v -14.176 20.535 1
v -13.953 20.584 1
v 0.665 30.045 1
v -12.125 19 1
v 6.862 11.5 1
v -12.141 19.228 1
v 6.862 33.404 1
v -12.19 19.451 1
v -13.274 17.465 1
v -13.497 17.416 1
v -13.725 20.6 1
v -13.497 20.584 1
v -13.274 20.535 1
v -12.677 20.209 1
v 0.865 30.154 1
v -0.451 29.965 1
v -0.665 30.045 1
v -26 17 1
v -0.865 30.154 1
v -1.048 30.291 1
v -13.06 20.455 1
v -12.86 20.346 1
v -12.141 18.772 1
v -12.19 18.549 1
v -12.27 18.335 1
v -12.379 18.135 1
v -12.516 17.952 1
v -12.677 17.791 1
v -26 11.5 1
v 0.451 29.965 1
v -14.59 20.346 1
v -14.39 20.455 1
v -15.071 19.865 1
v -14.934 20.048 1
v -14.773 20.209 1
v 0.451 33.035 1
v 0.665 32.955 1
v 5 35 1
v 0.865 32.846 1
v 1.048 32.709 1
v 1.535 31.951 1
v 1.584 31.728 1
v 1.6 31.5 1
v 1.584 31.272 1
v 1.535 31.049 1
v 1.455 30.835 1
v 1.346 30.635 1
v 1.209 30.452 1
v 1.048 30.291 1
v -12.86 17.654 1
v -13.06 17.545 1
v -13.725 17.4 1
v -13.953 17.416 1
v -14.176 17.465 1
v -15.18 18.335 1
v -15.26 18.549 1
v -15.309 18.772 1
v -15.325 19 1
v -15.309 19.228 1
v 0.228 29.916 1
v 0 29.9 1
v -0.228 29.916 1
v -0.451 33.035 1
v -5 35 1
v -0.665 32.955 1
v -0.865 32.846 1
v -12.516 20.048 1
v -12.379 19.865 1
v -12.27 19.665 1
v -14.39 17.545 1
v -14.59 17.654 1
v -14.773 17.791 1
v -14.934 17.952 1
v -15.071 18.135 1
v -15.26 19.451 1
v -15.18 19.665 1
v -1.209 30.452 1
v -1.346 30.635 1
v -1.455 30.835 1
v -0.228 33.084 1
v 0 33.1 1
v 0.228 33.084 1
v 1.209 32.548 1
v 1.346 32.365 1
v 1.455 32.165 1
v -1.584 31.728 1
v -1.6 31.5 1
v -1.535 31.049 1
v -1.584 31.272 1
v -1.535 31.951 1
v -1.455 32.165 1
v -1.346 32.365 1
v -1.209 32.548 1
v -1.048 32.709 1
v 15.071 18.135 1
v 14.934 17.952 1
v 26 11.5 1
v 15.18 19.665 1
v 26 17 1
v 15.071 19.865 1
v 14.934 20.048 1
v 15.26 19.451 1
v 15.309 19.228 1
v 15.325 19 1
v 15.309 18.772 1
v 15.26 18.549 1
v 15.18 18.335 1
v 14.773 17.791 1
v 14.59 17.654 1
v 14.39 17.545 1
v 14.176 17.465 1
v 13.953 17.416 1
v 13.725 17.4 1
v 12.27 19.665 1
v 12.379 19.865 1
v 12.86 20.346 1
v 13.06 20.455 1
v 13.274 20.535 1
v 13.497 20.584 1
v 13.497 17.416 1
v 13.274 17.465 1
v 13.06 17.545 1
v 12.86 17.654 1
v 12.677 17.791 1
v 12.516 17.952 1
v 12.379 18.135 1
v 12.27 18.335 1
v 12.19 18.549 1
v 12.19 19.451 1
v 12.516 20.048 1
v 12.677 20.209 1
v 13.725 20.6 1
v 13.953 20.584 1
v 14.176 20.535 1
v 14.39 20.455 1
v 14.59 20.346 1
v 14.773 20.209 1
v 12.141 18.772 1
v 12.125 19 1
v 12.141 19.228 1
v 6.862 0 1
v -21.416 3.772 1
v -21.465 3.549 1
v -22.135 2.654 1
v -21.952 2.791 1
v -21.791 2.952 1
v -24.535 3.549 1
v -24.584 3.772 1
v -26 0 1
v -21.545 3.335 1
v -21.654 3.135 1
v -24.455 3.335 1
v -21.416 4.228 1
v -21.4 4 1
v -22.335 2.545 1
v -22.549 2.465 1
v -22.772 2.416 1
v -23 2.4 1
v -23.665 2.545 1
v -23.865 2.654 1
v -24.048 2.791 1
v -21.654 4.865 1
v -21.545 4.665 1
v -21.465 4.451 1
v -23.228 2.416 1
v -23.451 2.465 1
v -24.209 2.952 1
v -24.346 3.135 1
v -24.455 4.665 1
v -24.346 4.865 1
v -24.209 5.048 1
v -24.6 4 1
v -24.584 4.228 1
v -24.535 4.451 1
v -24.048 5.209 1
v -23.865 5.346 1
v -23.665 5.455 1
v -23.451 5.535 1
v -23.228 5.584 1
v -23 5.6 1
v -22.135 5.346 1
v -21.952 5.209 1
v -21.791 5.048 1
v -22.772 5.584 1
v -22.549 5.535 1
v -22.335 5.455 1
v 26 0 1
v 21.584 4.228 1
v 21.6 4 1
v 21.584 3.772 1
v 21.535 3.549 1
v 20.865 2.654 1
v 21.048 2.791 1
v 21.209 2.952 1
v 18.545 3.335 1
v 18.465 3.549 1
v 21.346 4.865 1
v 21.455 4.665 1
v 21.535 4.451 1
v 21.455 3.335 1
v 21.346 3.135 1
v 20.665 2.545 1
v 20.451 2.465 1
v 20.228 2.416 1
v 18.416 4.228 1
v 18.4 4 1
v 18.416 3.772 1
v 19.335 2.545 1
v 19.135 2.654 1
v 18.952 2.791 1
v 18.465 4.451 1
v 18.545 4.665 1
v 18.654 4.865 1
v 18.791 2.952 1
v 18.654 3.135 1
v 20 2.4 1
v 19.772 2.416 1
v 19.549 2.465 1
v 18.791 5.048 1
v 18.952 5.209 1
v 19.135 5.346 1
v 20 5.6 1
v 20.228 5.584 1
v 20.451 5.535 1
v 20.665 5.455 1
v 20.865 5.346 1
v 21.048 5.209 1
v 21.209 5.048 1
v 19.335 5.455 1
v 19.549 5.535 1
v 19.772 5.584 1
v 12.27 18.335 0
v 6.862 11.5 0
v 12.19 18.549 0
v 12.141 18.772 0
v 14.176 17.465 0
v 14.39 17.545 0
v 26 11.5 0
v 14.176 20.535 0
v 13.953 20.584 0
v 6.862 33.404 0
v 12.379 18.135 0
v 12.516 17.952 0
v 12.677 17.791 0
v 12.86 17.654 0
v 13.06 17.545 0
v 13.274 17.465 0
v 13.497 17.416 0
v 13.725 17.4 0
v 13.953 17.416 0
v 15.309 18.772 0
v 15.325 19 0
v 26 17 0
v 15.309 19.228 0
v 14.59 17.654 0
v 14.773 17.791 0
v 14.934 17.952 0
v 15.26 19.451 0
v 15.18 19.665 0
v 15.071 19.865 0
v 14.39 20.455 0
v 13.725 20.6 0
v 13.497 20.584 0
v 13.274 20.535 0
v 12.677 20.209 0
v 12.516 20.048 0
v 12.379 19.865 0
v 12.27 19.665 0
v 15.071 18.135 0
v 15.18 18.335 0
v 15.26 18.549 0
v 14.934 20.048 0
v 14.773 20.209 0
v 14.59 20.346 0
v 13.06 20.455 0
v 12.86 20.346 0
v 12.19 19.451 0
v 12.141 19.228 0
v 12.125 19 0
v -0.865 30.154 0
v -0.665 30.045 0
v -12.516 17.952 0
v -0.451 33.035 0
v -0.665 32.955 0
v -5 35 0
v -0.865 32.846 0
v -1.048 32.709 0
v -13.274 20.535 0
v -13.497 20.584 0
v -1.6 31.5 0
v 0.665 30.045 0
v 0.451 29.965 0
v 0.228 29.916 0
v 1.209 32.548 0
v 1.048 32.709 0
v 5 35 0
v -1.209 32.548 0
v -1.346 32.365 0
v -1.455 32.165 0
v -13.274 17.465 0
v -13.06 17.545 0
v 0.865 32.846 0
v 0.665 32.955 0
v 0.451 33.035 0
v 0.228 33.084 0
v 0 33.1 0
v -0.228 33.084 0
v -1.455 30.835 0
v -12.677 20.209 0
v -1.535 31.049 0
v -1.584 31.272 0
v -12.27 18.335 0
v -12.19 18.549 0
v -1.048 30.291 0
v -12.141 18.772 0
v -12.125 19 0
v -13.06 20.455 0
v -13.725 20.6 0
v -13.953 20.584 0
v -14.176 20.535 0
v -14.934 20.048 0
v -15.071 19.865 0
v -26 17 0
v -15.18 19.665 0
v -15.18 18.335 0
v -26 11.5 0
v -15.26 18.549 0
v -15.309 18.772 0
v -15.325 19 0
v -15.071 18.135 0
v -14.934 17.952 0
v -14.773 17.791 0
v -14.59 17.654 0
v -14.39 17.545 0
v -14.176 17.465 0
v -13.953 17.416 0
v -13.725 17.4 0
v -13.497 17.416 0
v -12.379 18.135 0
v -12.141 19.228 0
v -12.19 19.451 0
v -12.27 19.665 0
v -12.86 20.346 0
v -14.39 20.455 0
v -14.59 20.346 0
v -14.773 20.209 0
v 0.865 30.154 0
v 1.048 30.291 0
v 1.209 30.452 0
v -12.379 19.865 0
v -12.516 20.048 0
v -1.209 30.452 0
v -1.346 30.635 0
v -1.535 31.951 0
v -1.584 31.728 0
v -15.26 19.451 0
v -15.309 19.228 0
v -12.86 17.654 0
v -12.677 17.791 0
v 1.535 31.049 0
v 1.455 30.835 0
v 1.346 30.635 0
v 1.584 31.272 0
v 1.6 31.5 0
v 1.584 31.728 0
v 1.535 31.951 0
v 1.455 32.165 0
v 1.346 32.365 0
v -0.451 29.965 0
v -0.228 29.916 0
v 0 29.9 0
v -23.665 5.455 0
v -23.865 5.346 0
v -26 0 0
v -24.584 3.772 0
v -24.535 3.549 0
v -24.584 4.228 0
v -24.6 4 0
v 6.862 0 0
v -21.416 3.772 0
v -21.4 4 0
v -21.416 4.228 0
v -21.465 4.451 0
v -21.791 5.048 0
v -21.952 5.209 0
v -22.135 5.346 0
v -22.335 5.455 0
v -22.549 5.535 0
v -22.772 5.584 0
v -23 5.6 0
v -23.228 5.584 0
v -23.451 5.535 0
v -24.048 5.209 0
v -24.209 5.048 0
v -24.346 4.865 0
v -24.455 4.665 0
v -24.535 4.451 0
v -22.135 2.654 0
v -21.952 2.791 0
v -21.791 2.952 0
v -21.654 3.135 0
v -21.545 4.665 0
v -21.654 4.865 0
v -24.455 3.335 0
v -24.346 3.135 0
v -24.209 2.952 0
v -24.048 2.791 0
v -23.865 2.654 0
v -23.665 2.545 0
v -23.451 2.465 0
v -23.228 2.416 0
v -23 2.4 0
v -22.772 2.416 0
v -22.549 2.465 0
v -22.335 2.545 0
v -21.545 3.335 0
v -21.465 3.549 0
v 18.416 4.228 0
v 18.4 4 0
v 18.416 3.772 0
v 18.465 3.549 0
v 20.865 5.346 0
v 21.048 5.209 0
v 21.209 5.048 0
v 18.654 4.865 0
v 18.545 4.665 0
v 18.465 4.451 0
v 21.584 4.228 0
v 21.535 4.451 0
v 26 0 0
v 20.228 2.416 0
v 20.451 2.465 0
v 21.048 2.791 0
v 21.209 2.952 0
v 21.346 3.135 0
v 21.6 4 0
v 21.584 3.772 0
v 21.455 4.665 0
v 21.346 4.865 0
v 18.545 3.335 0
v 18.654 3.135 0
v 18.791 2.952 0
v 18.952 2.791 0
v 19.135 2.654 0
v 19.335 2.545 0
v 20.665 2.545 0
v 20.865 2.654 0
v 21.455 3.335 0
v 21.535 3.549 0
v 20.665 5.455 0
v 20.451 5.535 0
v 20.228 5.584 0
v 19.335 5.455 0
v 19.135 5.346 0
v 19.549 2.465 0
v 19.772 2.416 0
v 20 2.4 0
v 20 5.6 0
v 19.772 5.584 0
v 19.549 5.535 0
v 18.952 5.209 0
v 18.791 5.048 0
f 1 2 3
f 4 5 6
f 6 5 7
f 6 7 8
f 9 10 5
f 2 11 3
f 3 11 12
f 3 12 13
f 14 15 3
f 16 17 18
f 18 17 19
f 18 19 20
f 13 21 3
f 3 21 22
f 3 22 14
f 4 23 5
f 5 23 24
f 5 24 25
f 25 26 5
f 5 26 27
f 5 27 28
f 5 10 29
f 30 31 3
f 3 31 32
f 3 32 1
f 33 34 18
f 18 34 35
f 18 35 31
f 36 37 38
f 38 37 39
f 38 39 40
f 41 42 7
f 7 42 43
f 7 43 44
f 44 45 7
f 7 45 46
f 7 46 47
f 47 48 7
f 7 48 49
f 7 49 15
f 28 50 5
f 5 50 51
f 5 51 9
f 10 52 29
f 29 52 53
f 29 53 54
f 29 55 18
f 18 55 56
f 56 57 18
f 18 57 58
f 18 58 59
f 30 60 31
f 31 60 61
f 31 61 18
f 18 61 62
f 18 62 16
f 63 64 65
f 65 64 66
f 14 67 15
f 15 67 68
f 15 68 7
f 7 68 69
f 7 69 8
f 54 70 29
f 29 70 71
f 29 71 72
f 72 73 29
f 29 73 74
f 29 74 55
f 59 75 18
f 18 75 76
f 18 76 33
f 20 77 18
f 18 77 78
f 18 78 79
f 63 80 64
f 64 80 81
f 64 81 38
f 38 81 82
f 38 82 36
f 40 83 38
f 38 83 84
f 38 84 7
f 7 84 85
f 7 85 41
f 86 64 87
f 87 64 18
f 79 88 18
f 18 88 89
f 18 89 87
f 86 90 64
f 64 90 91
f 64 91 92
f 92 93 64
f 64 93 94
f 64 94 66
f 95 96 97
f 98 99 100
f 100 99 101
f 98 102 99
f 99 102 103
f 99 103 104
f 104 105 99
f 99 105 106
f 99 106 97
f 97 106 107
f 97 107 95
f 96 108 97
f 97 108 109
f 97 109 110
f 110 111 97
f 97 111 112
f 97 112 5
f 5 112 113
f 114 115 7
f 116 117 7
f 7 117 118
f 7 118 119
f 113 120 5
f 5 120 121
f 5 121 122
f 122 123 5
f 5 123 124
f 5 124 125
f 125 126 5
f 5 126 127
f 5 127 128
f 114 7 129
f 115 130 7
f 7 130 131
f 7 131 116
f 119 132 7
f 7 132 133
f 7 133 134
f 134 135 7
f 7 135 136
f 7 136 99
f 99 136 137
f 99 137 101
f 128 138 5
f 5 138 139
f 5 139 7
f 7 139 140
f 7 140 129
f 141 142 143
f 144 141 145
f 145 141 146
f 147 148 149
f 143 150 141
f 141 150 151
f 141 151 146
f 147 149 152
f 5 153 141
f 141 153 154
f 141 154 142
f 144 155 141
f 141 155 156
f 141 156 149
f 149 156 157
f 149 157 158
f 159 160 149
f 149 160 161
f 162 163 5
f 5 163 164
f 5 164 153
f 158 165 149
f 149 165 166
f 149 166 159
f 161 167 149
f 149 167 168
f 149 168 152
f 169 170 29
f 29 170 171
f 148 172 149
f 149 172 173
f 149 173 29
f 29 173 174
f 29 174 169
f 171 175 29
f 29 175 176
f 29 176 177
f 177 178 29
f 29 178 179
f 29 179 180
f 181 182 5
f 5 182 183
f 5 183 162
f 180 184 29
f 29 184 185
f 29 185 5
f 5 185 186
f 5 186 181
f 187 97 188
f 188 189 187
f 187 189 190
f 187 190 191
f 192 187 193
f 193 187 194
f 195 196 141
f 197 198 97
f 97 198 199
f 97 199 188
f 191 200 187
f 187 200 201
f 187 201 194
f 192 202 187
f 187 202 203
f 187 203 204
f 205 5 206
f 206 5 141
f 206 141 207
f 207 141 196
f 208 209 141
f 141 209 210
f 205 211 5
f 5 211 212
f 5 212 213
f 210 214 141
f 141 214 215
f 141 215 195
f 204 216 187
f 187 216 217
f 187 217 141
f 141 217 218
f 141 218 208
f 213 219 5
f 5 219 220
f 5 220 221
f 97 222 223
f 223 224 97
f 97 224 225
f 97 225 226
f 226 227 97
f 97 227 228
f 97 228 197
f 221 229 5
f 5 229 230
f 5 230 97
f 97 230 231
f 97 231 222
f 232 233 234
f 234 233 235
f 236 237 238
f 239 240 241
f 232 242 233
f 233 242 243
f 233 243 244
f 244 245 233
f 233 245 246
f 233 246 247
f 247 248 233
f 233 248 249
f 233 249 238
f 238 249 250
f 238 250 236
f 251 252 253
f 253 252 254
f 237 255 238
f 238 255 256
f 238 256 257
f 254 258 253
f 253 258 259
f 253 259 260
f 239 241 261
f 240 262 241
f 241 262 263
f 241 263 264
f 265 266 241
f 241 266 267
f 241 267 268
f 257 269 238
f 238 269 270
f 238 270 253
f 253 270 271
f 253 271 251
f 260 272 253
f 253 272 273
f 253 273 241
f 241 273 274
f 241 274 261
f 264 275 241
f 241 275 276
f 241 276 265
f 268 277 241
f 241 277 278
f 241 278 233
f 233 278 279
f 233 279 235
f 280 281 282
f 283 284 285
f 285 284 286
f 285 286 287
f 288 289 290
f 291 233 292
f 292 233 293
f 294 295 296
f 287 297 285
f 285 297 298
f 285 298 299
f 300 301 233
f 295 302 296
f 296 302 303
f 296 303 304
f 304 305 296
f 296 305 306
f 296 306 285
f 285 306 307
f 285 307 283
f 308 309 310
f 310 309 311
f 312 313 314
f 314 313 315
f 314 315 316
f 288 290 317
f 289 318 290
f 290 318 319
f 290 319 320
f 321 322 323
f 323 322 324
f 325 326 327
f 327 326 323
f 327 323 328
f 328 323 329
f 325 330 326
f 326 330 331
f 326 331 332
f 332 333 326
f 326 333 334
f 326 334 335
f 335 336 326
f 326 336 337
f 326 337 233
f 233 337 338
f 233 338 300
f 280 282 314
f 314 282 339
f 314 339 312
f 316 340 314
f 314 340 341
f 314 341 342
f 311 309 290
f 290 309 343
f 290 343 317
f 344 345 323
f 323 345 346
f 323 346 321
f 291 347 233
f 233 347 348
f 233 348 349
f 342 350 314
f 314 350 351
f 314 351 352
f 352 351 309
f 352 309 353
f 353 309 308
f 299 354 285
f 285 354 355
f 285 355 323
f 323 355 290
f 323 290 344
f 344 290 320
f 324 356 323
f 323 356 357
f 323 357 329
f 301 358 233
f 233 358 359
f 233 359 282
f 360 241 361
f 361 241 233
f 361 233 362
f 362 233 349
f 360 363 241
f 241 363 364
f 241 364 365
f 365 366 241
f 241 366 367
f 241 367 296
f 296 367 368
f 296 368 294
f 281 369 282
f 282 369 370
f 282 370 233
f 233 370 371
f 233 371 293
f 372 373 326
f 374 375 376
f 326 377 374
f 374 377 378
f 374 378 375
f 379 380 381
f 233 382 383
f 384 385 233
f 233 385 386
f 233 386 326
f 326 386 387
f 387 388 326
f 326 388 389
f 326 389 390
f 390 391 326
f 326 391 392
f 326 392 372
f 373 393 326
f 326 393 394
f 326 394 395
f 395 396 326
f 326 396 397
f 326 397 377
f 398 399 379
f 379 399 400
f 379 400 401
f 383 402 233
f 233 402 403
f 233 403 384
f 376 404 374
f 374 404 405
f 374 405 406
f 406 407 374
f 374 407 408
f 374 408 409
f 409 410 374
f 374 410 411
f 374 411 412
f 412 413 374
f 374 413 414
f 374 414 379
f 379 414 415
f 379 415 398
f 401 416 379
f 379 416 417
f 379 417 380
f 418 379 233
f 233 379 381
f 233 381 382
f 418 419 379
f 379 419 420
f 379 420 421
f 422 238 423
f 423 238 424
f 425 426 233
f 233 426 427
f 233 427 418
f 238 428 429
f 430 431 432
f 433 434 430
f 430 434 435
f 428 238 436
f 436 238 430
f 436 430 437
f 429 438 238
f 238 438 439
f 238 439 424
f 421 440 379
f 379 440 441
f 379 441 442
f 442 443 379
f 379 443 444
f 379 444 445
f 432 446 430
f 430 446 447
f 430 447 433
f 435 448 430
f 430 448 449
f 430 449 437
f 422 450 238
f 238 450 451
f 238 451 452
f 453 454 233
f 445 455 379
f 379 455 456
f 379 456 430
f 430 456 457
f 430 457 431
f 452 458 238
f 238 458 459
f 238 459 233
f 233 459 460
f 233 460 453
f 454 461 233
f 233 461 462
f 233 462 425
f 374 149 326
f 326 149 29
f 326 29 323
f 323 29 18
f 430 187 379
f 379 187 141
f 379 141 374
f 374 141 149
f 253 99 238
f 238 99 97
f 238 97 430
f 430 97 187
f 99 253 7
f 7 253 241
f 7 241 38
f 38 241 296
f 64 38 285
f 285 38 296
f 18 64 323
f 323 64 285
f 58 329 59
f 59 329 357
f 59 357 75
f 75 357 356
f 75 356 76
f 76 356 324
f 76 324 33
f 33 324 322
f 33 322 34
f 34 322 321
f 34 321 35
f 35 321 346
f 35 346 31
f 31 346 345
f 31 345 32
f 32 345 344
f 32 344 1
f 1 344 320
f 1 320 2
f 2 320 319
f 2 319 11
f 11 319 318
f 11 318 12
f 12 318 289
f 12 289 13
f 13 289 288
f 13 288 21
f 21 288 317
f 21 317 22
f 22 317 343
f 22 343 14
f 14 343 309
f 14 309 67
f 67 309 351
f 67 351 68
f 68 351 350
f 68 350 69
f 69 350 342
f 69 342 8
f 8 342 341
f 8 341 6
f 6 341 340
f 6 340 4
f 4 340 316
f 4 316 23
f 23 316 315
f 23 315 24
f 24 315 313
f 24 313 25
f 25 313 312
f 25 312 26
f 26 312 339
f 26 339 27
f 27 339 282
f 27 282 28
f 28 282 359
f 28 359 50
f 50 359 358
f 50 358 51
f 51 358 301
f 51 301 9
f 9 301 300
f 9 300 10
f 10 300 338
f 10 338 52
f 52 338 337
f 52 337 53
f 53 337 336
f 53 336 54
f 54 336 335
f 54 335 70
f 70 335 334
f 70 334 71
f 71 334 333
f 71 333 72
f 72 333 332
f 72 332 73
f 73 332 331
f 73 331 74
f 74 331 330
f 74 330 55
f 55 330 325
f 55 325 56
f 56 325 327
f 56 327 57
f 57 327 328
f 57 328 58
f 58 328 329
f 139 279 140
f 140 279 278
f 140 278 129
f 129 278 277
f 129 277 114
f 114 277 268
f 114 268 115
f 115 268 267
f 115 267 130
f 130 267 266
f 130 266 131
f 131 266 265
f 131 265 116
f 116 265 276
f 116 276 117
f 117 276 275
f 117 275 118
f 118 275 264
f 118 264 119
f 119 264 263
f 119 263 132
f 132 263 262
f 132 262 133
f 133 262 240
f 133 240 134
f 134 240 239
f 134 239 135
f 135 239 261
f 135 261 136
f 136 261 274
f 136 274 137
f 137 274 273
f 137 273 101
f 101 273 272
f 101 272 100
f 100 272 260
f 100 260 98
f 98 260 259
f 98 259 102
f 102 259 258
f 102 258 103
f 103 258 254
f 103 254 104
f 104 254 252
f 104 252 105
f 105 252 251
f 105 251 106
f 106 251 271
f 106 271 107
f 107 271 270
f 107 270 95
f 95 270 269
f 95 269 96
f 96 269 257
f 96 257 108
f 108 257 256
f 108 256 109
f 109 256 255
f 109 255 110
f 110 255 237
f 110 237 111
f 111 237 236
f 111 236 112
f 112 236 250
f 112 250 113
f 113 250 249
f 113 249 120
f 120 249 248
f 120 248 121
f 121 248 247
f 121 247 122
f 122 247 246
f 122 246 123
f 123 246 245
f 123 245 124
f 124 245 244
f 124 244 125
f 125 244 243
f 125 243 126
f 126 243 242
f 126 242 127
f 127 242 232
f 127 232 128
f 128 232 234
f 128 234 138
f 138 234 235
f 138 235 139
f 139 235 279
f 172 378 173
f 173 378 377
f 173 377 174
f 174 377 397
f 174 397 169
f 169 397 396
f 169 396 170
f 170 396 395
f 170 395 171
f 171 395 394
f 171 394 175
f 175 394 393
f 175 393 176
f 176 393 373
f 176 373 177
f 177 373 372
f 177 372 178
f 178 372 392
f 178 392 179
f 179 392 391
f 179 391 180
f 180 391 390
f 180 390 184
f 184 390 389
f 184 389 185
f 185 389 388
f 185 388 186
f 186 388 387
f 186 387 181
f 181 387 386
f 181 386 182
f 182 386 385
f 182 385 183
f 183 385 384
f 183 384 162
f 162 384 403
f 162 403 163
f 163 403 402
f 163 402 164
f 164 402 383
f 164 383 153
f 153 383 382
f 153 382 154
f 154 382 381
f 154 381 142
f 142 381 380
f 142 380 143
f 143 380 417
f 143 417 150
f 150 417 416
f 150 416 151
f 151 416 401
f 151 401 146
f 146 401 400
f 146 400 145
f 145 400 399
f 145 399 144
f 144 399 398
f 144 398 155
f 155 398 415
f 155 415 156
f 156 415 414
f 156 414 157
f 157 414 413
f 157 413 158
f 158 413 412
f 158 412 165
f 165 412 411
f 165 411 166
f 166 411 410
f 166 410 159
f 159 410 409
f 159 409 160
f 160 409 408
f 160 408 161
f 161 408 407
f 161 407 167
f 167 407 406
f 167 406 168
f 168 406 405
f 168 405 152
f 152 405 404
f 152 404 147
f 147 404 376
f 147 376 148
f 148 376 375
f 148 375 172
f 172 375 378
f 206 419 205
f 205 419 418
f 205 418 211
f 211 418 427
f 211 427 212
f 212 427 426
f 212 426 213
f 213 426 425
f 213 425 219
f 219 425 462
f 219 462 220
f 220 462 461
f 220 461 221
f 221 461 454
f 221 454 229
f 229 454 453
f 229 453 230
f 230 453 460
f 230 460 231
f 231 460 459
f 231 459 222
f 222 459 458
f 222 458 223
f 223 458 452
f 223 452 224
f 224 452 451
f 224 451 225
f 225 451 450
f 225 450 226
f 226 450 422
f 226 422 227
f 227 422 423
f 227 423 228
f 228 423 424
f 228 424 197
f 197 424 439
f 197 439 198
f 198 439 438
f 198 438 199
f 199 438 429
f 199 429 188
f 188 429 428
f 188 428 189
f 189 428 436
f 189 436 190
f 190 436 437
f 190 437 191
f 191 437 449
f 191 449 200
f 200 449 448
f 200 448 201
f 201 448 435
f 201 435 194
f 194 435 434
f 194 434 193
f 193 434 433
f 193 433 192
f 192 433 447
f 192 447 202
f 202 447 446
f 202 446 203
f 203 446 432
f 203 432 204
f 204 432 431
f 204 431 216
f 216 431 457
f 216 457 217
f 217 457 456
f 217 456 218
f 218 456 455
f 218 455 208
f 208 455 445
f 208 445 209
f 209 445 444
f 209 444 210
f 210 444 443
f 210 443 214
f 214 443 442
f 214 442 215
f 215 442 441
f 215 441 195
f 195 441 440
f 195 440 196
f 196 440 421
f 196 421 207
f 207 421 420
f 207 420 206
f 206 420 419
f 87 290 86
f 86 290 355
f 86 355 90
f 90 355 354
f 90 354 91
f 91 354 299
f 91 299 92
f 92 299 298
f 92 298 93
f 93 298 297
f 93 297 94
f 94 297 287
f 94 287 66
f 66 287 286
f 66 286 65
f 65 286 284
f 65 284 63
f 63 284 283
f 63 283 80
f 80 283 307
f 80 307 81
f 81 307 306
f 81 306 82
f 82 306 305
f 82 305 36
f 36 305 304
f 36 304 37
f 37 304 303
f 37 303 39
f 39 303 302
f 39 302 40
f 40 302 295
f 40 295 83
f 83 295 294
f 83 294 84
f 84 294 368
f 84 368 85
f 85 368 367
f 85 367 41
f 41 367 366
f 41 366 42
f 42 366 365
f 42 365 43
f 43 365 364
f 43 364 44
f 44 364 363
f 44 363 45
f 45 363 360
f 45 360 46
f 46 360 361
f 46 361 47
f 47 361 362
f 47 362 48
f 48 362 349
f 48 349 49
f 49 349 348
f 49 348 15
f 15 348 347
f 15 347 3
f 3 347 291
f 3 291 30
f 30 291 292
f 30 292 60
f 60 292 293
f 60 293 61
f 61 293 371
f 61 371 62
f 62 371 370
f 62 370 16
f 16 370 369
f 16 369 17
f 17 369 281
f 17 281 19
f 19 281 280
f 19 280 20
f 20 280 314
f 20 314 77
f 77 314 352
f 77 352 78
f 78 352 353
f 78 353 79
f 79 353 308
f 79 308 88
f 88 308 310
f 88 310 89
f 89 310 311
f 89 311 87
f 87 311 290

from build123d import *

# Parameters (mm, degrees)
SKETCH_1_R      = 1.6
EXTRUDE_1_DEPTH = 1


with BuildPart() as part:
    # 草图1 → 凸台-拉伸1 (new body)
    with BuildSketch(Plane.XY):
        Polygon((26, 0), (-26, 0), (-26, 17), (-5, 35), (5, 35), (26, 17), align=None)
        with Locations((-13.725, 19)):
            Circle(SKETCH_1_R, mode=Mode.SUBTRACT)
        with Locations(Location((13.725, 19, 0), (0, 0, 180))):
            Circle(SKETCH_1_R, mode=Mode.SUBTRACT)
        with Locations((-23, 4)):
            Circle(SKETCH_1_R, mode=Mode.SUBTRACT)
        with Locations(Location((20, 4, 0), (0, 0, 180))):
            Circle(SKETCH_1_R, mode=Mode.SUBTRACT)
        with Locations((0, 31.5)):
            Circle(SKETCH_1_R, mode=Mode.SUBTRACT)
    extrude(amount=EXTRUDE_1_DEPTH)


solid = part.part
